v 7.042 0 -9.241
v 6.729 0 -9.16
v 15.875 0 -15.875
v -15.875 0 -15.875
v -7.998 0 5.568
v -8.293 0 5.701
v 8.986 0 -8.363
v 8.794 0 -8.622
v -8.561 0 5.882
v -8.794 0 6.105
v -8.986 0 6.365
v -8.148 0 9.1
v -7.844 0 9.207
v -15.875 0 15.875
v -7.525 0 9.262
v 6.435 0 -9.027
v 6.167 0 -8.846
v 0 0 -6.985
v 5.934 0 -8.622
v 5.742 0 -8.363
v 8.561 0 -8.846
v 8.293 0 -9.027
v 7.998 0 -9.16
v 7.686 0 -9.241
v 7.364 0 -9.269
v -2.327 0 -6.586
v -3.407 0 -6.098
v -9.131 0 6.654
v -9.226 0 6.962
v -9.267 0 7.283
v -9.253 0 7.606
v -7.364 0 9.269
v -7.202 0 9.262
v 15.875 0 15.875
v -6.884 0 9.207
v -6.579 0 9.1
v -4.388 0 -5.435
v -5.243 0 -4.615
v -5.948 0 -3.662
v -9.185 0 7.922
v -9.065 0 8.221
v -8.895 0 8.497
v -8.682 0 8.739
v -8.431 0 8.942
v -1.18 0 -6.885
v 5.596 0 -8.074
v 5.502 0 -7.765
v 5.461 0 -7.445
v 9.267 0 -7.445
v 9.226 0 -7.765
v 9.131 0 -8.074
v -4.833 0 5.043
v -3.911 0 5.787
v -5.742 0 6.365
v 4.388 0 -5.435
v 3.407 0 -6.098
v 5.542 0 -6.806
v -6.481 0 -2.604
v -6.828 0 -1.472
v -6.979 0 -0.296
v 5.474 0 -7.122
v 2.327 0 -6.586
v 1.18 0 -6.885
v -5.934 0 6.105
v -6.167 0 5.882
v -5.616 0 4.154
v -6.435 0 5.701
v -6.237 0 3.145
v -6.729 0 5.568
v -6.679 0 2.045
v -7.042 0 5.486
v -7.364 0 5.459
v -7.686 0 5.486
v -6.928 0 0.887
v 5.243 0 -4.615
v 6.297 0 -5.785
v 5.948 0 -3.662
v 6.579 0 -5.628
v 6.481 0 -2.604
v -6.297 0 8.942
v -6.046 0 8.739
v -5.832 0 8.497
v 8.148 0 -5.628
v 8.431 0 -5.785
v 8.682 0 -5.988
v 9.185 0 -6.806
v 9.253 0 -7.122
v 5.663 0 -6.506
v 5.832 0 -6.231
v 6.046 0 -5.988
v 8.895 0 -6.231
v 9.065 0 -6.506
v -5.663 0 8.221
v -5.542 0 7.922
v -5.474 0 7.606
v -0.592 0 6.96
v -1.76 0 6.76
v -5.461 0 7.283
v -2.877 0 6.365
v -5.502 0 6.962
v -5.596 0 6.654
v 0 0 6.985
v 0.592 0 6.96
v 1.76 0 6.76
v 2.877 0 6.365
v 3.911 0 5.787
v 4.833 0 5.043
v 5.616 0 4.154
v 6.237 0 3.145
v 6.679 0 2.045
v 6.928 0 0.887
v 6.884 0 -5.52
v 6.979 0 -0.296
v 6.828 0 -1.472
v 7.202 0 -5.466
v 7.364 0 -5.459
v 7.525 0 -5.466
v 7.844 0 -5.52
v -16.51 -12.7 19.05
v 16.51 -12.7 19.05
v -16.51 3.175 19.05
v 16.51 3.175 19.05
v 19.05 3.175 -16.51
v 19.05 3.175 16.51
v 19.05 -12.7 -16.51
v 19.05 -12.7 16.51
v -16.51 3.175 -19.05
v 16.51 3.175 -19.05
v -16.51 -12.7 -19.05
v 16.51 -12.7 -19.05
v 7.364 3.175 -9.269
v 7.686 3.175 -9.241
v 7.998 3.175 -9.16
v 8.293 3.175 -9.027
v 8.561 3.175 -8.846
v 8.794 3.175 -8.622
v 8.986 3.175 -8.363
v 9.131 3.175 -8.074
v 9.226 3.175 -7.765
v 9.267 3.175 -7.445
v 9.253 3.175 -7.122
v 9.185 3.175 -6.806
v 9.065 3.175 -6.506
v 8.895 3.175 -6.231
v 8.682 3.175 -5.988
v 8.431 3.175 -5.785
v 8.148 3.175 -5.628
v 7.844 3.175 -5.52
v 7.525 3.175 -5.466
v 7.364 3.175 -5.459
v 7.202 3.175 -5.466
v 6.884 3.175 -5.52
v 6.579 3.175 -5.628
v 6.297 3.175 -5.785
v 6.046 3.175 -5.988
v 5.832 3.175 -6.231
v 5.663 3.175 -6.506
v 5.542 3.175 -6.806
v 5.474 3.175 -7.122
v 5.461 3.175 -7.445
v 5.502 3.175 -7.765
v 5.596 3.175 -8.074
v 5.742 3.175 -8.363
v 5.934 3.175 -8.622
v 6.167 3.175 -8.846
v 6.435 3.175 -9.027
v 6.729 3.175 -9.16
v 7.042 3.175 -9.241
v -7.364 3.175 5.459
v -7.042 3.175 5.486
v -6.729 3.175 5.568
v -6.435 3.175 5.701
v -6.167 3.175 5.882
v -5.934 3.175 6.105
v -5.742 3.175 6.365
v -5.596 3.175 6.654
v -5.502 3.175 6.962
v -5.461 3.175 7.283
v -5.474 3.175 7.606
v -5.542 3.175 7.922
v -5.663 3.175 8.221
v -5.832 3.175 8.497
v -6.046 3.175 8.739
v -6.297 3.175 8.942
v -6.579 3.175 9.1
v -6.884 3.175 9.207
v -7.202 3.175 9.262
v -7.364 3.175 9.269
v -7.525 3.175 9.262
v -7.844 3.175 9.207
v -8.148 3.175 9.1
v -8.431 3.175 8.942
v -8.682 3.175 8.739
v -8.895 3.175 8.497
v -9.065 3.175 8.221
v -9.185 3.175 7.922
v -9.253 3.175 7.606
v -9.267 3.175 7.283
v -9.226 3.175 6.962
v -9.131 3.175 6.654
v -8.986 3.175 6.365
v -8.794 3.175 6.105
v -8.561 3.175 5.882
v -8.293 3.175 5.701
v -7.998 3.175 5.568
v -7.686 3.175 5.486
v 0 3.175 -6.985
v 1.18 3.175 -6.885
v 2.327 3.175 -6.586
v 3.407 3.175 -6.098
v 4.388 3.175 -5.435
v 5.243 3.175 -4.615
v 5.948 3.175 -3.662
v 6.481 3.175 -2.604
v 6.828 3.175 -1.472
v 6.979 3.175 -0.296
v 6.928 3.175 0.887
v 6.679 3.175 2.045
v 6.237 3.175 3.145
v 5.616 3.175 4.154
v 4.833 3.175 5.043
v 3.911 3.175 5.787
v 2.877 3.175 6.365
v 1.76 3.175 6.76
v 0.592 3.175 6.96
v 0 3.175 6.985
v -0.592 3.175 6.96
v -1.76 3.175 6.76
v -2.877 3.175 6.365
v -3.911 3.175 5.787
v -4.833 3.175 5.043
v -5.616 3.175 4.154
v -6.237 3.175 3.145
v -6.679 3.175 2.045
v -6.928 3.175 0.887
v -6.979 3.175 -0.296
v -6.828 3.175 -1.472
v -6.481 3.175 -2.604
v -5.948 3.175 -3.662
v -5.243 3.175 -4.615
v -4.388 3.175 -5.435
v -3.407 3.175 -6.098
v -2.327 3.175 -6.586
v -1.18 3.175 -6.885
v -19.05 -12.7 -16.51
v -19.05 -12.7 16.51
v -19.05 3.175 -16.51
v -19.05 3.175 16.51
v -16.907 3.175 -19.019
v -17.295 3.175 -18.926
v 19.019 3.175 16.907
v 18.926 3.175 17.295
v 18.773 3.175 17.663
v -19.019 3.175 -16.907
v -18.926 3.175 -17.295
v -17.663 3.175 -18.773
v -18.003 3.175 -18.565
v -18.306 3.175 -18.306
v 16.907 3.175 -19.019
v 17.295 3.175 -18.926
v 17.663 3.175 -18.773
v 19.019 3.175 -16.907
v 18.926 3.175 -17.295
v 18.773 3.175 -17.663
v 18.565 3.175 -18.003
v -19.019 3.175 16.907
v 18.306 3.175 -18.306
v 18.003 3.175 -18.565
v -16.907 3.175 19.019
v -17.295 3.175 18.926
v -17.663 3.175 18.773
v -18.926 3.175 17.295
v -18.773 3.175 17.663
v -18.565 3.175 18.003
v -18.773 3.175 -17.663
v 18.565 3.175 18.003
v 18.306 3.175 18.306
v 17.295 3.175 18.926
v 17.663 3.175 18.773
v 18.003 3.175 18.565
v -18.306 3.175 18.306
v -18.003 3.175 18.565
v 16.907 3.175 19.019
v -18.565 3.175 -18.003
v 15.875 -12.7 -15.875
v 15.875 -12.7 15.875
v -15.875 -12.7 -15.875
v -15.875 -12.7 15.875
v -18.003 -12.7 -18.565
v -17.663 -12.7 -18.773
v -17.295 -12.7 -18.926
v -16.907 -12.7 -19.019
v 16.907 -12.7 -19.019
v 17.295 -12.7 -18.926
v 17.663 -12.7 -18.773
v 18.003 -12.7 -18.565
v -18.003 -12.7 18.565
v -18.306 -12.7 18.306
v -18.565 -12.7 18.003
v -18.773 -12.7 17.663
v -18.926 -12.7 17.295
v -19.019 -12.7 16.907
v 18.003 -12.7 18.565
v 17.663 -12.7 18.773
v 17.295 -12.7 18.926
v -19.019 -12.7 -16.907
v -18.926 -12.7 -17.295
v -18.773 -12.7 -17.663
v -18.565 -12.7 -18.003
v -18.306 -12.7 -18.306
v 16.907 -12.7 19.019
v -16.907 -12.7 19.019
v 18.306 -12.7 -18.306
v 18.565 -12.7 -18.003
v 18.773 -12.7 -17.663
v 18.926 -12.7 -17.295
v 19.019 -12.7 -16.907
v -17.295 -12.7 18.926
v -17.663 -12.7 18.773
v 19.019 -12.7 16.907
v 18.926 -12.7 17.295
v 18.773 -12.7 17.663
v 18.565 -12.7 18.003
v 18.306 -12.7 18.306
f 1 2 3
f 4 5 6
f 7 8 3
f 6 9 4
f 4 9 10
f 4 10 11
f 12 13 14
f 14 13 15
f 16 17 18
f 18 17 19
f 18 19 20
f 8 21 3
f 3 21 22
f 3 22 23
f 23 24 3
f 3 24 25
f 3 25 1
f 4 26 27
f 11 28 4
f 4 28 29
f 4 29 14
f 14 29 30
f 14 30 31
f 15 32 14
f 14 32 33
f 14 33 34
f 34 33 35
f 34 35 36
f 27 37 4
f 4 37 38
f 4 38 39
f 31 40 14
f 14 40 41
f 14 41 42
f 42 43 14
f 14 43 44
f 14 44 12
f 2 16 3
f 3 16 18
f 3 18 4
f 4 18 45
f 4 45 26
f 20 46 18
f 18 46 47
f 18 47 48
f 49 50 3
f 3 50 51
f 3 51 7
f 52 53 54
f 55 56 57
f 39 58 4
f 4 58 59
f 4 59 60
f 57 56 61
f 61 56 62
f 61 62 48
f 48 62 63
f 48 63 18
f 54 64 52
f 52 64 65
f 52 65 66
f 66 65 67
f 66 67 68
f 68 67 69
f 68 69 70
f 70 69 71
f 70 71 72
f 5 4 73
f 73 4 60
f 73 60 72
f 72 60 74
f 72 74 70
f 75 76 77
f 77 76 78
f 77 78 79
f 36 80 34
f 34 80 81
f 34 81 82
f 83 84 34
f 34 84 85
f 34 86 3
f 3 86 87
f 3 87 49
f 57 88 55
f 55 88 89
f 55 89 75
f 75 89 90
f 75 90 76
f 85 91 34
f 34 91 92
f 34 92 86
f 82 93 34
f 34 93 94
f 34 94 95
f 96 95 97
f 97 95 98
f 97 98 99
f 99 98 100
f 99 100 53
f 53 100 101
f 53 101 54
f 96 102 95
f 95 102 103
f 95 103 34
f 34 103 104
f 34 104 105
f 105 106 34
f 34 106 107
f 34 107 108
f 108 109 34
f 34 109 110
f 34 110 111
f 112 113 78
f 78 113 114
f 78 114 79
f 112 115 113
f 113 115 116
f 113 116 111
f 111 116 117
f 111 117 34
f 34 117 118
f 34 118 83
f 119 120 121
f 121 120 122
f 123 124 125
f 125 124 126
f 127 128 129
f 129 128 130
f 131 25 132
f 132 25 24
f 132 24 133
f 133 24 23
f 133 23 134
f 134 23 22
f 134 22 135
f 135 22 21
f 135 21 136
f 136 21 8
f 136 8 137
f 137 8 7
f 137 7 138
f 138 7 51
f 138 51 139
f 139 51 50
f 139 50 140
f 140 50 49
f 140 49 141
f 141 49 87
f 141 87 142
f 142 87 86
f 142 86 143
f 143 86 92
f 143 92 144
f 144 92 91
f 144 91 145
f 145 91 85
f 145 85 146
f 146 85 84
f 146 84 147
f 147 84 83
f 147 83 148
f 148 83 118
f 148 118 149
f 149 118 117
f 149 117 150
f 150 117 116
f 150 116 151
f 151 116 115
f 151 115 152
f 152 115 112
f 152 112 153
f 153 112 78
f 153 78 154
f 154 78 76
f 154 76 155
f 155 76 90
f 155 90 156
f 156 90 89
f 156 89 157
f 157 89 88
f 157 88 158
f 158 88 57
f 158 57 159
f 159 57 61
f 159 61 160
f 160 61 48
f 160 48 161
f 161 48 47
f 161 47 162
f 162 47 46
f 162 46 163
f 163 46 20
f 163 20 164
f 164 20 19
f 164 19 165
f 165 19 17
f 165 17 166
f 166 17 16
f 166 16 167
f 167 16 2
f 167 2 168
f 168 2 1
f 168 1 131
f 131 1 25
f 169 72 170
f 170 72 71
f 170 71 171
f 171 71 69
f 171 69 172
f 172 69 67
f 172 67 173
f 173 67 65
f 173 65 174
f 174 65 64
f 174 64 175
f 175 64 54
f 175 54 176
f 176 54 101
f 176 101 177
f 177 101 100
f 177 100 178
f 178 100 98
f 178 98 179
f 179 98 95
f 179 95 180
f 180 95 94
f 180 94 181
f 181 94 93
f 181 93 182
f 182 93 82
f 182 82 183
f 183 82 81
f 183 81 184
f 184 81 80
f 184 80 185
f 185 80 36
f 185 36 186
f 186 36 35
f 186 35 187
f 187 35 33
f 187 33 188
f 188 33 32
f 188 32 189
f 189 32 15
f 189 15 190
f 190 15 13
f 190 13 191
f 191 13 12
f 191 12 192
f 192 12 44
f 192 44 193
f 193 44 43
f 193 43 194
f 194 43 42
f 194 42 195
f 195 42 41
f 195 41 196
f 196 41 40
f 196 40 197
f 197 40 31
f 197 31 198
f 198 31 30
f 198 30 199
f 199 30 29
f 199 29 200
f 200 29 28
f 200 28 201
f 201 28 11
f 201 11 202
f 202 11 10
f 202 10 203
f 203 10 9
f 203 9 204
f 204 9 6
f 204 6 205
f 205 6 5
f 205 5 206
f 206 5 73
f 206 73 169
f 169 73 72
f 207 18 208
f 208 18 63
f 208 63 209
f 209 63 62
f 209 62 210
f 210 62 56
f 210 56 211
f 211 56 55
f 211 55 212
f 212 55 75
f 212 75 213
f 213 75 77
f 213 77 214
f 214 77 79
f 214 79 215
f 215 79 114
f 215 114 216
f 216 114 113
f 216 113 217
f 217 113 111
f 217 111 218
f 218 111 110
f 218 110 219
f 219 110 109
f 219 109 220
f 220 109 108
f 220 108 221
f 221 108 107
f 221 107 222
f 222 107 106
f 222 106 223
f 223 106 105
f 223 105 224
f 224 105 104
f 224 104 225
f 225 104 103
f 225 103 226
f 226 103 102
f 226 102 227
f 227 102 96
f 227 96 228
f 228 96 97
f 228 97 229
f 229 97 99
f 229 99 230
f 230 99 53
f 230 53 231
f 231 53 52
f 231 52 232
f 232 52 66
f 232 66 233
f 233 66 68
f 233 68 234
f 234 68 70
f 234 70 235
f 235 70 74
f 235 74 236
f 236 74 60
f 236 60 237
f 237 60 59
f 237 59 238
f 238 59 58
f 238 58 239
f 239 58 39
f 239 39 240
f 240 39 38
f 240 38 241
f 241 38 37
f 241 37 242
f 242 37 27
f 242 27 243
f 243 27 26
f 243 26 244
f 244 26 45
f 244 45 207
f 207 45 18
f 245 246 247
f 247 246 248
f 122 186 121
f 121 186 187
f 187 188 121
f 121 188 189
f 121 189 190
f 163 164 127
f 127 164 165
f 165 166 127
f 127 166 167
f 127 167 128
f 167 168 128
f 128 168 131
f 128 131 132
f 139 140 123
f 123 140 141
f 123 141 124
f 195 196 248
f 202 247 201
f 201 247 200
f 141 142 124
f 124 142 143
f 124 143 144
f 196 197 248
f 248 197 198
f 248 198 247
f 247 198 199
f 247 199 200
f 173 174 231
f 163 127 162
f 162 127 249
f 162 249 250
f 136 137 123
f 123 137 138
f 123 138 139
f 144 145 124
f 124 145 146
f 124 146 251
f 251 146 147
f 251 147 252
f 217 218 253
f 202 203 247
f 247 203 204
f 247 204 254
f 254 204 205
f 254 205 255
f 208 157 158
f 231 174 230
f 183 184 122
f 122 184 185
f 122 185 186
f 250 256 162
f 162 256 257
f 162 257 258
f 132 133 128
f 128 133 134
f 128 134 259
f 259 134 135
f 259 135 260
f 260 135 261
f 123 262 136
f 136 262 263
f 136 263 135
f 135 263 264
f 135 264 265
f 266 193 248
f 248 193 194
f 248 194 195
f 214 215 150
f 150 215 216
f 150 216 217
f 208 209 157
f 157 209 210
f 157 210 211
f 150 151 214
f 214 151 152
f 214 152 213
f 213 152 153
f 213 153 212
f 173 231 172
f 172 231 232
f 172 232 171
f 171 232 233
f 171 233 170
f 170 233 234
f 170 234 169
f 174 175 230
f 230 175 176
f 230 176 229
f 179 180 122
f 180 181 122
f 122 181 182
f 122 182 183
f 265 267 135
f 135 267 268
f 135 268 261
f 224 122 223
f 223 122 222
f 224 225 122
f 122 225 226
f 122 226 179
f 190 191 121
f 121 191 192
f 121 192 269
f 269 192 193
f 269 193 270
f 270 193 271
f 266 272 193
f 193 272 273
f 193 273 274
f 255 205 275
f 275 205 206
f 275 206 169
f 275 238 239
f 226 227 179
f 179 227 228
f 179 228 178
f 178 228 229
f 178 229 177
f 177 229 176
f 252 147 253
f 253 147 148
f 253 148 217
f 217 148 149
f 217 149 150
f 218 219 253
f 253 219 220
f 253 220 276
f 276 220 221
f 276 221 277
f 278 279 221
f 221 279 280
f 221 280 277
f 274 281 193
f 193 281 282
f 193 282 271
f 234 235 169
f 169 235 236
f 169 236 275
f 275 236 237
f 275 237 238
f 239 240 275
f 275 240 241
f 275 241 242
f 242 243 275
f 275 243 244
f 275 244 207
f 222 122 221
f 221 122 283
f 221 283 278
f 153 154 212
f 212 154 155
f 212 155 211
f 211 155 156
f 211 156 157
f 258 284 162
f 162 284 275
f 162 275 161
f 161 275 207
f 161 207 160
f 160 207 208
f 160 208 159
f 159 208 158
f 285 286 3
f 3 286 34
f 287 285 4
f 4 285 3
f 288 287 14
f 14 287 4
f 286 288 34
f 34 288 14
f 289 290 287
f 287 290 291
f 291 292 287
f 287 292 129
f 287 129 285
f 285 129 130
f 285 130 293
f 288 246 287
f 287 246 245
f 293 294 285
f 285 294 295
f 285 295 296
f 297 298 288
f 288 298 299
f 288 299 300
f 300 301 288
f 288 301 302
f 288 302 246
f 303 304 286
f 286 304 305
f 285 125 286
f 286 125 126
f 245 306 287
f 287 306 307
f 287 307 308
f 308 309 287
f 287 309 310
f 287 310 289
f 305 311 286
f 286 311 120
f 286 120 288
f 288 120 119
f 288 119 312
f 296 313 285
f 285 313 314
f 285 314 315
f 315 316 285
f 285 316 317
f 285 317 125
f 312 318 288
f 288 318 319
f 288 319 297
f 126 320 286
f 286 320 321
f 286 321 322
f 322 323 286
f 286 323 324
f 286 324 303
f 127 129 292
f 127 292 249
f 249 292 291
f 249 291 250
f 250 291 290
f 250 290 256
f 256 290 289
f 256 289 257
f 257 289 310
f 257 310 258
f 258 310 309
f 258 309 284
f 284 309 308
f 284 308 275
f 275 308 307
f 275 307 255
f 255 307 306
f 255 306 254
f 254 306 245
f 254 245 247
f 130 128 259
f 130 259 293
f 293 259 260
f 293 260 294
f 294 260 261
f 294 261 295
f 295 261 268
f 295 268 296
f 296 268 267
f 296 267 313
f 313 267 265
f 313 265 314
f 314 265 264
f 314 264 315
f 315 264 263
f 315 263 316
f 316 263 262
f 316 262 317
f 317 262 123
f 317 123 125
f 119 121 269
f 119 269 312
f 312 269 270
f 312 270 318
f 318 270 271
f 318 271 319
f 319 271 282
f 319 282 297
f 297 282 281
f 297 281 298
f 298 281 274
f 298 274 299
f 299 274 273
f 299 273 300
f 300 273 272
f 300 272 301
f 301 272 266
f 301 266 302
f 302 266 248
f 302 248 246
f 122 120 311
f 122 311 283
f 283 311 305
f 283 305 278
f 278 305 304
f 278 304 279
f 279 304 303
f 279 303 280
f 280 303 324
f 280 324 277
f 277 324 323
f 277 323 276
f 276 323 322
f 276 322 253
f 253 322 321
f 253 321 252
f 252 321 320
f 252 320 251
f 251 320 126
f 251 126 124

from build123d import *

# Parameters (mm, degrees)
SKETCH1_W           = 38.1
SKETCH1_H           = 38.1
SKETCH1_R           = 1.905
SKETCH1_R_2         = 6.985
BOSS_EXTRUDE1_DEPTH = 3.175
SKETCH1_3_W         = 38.1
SKETCH1_3_H         = 38.1
SKETCH1_3_W_2       = 31.75
SKETCH1_3_H_2       = 31.75
BOSS_EXTRUDE2_DEPTH = 12.7
FILLET1_R           = 2.54


with BuildPart() as part:
    # Sketch1 → Boss-Extrude1 (new body)
    with BuildSketch(Plane(origin=(0, 0, 0), x_dir=(1, 0, 0), z_dir=(0, 1, 0))):
        Rectangle(SKETCH1_W, SKETCH1_H)
        with Locations((7.363810019, 7.363810019)):
            Circle(SKETCH1_R, mode=Mode.SUBTRACT)
        with Locations((-7.363810019, -7.363810019)):
            Circle(SKETCH1_R, mode=Mode.SUBTRACT)
        Circle(SKETCH1_R_2, mode=Mode.SUBTRACT)
    extrude(amount=BOSS_EXTRUDE1_DEPTH)

    # Sketch1<3> → Boss-Extrude2 (add)
    with BuildSketch(Plane(origin=(0, 0, 0), x_dir=(1, 0, 0), z_dir=(0, 1, 0))):
        Rectangle(SKETCH1_3_W, SKETCH1_3_H)
        Rectangle(SKETCH1_3_W_2, SKETCH1_3_H_2, mode=Mode.SUBTRACT)
    extrude(amount=-BOSS_EXTRUDE2_DEPTH)

    # Fillet1
    fillet1_edges = [part.edges().sort_by_distance(p)[0] for p in [
        (-19.05, -4.7625, -19.05),
        (19.05, -4.7625, -19.05),
        (-19.05, -4.7625, 19.05),
        (19.05, -4.7625, 19.05),
    ]]
    fillet(fillet1_edges, radius=FILLET1_R)


solid = part.part
